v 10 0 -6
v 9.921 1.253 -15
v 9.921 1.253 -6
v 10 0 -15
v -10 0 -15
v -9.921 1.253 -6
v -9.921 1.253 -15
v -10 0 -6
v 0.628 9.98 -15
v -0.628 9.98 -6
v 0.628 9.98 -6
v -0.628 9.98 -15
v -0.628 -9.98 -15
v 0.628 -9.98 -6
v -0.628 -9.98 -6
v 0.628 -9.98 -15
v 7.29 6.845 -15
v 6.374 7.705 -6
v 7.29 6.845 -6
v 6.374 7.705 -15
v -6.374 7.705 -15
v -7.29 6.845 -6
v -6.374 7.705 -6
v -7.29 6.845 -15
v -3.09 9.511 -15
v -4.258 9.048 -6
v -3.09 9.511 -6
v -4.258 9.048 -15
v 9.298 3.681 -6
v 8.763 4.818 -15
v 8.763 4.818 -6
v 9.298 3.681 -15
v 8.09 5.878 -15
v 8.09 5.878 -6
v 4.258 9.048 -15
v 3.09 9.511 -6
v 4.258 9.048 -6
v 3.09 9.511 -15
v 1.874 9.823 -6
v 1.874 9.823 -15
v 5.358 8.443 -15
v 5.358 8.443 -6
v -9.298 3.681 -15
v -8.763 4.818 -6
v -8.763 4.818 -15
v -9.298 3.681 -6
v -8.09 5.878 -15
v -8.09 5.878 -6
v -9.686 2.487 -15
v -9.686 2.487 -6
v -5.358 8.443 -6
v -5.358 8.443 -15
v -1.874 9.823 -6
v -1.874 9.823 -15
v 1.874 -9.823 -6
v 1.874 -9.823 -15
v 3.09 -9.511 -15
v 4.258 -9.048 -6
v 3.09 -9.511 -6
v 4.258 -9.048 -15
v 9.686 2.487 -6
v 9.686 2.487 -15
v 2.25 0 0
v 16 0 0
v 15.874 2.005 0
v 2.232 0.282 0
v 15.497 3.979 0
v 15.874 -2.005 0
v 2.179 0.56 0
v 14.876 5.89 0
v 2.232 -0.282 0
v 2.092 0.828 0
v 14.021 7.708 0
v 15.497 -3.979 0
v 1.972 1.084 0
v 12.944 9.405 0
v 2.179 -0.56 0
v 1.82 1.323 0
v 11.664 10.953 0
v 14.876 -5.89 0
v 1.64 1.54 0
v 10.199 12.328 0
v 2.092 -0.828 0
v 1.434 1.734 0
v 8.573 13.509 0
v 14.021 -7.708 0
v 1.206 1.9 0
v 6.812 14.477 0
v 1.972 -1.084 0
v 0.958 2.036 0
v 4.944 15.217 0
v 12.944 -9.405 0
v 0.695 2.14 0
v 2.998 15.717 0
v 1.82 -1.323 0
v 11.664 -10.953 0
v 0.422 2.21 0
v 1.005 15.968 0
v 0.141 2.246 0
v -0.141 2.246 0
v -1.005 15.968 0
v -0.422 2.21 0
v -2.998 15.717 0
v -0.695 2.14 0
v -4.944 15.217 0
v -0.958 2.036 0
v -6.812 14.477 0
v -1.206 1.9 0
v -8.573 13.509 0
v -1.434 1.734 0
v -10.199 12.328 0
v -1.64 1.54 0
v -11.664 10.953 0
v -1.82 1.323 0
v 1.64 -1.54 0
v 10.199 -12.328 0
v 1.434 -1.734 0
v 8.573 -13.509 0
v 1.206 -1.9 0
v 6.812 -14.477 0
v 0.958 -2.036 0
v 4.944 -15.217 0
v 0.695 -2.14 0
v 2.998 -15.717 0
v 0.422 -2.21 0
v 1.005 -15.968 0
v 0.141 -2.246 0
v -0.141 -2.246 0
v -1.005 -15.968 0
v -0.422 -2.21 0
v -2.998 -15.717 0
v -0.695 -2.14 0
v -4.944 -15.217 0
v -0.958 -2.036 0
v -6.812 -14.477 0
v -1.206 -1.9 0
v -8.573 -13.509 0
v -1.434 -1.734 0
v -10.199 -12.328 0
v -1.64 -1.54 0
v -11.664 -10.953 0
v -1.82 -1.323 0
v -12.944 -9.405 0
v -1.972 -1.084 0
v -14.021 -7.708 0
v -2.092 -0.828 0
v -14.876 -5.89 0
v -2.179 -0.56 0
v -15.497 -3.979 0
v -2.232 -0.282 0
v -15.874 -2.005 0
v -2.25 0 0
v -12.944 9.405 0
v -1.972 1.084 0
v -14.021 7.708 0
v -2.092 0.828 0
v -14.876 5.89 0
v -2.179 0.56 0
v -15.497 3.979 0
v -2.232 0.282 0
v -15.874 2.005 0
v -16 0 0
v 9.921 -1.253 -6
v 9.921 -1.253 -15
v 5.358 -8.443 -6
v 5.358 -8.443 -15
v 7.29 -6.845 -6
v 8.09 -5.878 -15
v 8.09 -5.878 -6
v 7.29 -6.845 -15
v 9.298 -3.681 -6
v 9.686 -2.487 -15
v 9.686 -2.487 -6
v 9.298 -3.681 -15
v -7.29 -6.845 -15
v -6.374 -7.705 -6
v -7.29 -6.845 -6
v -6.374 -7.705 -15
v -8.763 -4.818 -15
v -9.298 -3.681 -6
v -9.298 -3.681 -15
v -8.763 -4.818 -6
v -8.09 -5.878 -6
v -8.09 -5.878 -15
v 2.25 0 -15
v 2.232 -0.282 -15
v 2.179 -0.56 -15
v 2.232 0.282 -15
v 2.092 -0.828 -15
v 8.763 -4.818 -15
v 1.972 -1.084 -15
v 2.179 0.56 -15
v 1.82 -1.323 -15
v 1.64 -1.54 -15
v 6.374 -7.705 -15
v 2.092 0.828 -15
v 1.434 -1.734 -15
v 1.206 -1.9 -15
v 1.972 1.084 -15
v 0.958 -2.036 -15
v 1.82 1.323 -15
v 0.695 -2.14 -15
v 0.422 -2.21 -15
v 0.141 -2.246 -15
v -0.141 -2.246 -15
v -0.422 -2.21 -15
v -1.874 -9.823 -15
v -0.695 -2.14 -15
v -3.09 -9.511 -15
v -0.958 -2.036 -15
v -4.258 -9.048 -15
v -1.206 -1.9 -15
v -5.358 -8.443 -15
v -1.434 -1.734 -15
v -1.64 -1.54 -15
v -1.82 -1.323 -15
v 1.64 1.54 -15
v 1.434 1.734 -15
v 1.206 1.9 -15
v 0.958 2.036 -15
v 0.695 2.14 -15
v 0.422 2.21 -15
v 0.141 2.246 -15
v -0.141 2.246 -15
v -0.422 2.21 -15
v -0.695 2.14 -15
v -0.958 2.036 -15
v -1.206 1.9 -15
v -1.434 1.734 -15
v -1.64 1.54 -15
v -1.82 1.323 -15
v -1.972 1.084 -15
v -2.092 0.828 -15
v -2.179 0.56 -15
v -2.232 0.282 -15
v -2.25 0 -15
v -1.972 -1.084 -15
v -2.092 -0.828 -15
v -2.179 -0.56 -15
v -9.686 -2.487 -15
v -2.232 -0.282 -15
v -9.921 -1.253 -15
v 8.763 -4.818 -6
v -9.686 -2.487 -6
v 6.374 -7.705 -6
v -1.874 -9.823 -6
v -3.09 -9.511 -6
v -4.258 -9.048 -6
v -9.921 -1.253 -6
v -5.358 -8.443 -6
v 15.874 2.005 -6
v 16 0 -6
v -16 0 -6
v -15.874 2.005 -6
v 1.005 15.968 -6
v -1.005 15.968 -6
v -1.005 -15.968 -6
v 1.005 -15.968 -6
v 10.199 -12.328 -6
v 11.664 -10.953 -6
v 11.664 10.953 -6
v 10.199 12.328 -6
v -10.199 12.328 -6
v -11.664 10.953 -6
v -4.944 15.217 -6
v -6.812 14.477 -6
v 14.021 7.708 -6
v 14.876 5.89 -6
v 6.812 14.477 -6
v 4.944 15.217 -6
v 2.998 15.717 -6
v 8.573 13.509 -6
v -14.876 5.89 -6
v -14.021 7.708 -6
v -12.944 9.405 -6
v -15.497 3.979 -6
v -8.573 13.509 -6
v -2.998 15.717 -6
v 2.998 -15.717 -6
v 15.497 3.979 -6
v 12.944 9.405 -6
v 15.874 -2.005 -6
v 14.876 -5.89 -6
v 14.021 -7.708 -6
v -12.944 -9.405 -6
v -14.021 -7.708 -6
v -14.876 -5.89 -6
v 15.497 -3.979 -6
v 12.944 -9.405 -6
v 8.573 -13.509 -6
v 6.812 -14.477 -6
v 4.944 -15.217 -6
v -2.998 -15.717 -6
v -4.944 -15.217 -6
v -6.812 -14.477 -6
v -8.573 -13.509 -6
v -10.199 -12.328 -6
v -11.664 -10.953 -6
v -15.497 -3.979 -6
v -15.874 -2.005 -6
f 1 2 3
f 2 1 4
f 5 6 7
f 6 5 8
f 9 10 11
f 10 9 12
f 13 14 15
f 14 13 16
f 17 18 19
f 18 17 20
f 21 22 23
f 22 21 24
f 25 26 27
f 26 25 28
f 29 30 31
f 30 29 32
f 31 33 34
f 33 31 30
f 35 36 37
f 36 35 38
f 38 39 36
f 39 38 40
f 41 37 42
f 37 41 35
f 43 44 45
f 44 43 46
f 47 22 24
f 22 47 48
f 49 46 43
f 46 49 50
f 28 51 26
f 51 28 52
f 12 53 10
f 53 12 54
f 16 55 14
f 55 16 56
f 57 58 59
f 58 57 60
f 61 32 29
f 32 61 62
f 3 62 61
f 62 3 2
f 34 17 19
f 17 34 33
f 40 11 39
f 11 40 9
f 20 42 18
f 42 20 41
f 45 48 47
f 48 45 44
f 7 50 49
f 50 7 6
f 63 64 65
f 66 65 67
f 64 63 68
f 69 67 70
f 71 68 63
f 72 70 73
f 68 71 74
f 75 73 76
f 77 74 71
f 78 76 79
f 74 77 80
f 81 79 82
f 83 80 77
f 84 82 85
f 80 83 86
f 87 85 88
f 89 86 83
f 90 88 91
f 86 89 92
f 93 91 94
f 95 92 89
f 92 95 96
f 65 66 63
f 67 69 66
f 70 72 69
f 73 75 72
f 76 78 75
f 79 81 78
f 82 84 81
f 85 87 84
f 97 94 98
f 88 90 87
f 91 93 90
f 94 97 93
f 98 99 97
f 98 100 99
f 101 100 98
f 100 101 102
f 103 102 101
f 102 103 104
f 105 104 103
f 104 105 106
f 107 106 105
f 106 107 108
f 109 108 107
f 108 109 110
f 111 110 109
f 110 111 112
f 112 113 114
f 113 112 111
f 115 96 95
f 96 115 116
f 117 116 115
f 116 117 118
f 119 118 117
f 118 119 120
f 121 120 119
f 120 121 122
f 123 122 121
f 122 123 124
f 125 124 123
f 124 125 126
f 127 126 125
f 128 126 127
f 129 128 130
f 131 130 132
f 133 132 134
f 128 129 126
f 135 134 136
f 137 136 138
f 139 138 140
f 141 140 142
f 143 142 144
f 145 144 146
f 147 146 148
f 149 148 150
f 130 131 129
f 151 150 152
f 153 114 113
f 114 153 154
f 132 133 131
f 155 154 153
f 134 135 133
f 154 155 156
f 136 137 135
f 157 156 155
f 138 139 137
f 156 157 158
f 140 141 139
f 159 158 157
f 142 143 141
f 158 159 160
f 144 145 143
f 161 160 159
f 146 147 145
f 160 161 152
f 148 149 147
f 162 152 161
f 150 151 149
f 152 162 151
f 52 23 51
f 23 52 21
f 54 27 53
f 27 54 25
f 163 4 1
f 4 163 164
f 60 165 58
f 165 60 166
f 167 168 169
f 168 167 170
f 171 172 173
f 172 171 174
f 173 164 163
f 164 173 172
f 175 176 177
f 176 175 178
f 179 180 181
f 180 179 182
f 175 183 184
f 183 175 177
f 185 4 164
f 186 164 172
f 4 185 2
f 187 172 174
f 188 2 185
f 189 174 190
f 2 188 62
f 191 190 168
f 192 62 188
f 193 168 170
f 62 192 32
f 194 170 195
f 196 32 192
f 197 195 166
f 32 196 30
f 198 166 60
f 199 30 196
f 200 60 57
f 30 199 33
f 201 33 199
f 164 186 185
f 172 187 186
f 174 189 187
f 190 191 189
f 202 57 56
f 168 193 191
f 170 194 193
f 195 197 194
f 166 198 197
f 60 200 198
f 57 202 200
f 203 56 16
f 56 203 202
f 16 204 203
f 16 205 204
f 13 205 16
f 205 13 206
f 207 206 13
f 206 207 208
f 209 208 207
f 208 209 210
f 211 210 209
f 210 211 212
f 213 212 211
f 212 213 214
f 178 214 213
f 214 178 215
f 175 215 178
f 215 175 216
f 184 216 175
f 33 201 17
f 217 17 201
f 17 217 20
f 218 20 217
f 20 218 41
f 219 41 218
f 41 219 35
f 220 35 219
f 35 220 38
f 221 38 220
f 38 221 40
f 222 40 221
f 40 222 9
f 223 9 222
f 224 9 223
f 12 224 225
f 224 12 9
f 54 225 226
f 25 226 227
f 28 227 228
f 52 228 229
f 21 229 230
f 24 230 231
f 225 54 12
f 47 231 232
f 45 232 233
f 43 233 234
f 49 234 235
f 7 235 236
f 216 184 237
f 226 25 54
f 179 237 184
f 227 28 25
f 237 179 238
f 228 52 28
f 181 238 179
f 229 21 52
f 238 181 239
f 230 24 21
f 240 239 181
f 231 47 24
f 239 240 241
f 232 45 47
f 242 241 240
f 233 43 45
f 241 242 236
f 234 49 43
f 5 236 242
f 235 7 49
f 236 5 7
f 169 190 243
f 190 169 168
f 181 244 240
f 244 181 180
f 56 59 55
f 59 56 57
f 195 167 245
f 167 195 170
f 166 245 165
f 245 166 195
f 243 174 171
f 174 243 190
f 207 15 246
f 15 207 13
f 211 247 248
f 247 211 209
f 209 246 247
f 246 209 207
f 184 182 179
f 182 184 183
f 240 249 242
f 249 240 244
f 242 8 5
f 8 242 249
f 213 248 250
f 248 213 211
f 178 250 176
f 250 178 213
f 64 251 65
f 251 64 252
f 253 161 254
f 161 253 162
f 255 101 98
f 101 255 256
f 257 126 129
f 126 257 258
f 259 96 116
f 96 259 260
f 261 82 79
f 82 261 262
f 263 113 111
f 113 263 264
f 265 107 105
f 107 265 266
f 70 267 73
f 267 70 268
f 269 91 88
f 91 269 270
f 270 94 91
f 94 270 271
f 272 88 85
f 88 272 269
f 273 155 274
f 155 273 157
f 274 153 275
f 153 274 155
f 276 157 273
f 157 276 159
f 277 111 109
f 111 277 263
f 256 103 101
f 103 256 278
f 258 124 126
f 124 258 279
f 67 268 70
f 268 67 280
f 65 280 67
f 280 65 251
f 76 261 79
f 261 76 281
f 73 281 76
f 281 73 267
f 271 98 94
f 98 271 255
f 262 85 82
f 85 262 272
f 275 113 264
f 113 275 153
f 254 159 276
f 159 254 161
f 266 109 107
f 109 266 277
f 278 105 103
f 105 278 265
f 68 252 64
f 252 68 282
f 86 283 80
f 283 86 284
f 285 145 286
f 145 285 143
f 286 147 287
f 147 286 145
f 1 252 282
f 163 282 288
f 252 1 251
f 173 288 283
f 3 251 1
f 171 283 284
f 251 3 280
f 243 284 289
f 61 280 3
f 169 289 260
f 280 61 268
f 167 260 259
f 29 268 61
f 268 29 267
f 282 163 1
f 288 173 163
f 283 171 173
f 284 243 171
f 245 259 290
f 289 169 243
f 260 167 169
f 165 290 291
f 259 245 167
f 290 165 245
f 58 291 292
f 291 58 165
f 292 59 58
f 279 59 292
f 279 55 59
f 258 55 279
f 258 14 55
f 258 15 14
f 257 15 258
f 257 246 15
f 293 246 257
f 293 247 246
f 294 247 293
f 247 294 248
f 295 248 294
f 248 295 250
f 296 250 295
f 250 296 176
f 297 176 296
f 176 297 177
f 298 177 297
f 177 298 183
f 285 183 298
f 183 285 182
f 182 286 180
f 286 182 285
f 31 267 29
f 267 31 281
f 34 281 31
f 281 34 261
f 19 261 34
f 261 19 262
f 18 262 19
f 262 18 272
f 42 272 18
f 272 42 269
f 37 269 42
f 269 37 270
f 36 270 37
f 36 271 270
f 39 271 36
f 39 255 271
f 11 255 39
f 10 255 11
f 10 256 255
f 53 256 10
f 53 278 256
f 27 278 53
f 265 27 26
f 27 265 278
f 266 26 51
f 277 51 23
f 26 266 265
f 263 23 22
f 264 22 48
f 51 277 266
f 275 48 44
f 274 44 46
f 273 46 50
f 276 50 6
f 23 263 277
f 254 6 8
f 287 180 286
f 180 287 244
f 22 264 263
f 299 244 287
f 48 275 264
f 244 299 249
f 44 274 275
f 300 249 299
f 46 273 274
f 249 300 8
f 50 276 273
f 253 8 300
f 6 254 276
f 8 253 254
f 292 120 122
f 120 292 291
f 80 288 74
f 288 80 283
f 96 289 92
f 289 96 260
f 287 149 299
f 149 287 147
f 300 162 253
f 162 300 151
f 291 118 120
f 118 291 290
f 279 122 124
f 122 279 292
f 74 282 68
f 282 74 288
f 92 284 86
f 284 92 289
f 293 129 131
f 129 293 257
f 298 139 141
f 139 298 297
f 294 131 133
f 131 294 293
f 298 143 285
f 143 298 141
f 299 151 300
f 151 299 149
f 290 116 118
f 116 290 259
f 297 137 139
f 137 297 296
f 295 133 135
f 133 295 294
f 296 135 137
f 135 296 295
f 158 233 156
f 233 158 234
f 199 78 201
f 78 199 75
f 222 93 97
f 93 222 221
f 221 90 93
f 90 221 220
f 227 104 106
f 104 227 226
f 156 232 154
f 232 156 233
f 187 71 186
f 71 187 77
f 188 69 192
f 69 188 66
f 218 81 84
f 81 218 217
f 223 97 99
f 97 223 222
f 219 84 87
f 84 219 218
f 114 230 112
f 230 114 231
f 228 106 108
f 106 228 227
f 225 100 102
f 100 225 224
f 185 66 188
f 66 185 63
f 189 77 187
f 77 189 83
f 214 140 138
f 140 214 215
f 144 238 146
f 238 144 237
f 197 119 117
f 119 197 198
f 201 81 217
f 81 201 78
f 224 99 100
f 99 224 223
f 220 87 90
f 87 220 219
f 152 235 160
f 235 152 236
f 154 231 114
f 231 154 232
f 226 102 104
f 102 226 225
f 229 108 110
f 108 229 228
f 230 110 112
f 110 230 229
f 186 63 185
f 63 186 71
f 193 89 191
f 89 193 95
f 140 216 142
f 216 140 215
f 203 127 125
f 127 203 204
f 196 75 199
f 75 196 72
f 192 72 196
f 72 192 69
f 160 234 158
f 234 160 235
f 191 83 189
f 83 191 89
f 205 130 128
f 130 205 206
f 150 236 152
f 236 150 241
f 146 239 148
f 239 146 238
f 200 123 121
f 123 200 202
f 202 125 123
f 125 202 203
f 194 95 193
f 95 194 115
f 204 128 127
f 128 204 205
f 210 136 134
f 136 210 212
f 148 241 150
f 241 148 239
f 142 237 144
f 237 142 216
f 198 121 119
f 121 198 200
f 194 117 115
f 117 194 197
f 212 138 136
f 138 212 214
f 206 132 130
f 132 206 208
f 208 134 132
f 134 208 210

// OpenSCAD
$fn = 50;


difference() {
	union() {
		translate(v = [0, 0, -15.0000000000]) {
			cylinder(h = 15, r = 10.0000000000);
		}
		translate(v = [0, 0, -6.0000000000]) {
			cylinder(h = 6, r = 16.0000000000);
		}
	}
	union() {
		#translate(v = [0, 0, -15]) {
			cylinder(h = 15, r = 2.2500000000);
		}
	}
}
